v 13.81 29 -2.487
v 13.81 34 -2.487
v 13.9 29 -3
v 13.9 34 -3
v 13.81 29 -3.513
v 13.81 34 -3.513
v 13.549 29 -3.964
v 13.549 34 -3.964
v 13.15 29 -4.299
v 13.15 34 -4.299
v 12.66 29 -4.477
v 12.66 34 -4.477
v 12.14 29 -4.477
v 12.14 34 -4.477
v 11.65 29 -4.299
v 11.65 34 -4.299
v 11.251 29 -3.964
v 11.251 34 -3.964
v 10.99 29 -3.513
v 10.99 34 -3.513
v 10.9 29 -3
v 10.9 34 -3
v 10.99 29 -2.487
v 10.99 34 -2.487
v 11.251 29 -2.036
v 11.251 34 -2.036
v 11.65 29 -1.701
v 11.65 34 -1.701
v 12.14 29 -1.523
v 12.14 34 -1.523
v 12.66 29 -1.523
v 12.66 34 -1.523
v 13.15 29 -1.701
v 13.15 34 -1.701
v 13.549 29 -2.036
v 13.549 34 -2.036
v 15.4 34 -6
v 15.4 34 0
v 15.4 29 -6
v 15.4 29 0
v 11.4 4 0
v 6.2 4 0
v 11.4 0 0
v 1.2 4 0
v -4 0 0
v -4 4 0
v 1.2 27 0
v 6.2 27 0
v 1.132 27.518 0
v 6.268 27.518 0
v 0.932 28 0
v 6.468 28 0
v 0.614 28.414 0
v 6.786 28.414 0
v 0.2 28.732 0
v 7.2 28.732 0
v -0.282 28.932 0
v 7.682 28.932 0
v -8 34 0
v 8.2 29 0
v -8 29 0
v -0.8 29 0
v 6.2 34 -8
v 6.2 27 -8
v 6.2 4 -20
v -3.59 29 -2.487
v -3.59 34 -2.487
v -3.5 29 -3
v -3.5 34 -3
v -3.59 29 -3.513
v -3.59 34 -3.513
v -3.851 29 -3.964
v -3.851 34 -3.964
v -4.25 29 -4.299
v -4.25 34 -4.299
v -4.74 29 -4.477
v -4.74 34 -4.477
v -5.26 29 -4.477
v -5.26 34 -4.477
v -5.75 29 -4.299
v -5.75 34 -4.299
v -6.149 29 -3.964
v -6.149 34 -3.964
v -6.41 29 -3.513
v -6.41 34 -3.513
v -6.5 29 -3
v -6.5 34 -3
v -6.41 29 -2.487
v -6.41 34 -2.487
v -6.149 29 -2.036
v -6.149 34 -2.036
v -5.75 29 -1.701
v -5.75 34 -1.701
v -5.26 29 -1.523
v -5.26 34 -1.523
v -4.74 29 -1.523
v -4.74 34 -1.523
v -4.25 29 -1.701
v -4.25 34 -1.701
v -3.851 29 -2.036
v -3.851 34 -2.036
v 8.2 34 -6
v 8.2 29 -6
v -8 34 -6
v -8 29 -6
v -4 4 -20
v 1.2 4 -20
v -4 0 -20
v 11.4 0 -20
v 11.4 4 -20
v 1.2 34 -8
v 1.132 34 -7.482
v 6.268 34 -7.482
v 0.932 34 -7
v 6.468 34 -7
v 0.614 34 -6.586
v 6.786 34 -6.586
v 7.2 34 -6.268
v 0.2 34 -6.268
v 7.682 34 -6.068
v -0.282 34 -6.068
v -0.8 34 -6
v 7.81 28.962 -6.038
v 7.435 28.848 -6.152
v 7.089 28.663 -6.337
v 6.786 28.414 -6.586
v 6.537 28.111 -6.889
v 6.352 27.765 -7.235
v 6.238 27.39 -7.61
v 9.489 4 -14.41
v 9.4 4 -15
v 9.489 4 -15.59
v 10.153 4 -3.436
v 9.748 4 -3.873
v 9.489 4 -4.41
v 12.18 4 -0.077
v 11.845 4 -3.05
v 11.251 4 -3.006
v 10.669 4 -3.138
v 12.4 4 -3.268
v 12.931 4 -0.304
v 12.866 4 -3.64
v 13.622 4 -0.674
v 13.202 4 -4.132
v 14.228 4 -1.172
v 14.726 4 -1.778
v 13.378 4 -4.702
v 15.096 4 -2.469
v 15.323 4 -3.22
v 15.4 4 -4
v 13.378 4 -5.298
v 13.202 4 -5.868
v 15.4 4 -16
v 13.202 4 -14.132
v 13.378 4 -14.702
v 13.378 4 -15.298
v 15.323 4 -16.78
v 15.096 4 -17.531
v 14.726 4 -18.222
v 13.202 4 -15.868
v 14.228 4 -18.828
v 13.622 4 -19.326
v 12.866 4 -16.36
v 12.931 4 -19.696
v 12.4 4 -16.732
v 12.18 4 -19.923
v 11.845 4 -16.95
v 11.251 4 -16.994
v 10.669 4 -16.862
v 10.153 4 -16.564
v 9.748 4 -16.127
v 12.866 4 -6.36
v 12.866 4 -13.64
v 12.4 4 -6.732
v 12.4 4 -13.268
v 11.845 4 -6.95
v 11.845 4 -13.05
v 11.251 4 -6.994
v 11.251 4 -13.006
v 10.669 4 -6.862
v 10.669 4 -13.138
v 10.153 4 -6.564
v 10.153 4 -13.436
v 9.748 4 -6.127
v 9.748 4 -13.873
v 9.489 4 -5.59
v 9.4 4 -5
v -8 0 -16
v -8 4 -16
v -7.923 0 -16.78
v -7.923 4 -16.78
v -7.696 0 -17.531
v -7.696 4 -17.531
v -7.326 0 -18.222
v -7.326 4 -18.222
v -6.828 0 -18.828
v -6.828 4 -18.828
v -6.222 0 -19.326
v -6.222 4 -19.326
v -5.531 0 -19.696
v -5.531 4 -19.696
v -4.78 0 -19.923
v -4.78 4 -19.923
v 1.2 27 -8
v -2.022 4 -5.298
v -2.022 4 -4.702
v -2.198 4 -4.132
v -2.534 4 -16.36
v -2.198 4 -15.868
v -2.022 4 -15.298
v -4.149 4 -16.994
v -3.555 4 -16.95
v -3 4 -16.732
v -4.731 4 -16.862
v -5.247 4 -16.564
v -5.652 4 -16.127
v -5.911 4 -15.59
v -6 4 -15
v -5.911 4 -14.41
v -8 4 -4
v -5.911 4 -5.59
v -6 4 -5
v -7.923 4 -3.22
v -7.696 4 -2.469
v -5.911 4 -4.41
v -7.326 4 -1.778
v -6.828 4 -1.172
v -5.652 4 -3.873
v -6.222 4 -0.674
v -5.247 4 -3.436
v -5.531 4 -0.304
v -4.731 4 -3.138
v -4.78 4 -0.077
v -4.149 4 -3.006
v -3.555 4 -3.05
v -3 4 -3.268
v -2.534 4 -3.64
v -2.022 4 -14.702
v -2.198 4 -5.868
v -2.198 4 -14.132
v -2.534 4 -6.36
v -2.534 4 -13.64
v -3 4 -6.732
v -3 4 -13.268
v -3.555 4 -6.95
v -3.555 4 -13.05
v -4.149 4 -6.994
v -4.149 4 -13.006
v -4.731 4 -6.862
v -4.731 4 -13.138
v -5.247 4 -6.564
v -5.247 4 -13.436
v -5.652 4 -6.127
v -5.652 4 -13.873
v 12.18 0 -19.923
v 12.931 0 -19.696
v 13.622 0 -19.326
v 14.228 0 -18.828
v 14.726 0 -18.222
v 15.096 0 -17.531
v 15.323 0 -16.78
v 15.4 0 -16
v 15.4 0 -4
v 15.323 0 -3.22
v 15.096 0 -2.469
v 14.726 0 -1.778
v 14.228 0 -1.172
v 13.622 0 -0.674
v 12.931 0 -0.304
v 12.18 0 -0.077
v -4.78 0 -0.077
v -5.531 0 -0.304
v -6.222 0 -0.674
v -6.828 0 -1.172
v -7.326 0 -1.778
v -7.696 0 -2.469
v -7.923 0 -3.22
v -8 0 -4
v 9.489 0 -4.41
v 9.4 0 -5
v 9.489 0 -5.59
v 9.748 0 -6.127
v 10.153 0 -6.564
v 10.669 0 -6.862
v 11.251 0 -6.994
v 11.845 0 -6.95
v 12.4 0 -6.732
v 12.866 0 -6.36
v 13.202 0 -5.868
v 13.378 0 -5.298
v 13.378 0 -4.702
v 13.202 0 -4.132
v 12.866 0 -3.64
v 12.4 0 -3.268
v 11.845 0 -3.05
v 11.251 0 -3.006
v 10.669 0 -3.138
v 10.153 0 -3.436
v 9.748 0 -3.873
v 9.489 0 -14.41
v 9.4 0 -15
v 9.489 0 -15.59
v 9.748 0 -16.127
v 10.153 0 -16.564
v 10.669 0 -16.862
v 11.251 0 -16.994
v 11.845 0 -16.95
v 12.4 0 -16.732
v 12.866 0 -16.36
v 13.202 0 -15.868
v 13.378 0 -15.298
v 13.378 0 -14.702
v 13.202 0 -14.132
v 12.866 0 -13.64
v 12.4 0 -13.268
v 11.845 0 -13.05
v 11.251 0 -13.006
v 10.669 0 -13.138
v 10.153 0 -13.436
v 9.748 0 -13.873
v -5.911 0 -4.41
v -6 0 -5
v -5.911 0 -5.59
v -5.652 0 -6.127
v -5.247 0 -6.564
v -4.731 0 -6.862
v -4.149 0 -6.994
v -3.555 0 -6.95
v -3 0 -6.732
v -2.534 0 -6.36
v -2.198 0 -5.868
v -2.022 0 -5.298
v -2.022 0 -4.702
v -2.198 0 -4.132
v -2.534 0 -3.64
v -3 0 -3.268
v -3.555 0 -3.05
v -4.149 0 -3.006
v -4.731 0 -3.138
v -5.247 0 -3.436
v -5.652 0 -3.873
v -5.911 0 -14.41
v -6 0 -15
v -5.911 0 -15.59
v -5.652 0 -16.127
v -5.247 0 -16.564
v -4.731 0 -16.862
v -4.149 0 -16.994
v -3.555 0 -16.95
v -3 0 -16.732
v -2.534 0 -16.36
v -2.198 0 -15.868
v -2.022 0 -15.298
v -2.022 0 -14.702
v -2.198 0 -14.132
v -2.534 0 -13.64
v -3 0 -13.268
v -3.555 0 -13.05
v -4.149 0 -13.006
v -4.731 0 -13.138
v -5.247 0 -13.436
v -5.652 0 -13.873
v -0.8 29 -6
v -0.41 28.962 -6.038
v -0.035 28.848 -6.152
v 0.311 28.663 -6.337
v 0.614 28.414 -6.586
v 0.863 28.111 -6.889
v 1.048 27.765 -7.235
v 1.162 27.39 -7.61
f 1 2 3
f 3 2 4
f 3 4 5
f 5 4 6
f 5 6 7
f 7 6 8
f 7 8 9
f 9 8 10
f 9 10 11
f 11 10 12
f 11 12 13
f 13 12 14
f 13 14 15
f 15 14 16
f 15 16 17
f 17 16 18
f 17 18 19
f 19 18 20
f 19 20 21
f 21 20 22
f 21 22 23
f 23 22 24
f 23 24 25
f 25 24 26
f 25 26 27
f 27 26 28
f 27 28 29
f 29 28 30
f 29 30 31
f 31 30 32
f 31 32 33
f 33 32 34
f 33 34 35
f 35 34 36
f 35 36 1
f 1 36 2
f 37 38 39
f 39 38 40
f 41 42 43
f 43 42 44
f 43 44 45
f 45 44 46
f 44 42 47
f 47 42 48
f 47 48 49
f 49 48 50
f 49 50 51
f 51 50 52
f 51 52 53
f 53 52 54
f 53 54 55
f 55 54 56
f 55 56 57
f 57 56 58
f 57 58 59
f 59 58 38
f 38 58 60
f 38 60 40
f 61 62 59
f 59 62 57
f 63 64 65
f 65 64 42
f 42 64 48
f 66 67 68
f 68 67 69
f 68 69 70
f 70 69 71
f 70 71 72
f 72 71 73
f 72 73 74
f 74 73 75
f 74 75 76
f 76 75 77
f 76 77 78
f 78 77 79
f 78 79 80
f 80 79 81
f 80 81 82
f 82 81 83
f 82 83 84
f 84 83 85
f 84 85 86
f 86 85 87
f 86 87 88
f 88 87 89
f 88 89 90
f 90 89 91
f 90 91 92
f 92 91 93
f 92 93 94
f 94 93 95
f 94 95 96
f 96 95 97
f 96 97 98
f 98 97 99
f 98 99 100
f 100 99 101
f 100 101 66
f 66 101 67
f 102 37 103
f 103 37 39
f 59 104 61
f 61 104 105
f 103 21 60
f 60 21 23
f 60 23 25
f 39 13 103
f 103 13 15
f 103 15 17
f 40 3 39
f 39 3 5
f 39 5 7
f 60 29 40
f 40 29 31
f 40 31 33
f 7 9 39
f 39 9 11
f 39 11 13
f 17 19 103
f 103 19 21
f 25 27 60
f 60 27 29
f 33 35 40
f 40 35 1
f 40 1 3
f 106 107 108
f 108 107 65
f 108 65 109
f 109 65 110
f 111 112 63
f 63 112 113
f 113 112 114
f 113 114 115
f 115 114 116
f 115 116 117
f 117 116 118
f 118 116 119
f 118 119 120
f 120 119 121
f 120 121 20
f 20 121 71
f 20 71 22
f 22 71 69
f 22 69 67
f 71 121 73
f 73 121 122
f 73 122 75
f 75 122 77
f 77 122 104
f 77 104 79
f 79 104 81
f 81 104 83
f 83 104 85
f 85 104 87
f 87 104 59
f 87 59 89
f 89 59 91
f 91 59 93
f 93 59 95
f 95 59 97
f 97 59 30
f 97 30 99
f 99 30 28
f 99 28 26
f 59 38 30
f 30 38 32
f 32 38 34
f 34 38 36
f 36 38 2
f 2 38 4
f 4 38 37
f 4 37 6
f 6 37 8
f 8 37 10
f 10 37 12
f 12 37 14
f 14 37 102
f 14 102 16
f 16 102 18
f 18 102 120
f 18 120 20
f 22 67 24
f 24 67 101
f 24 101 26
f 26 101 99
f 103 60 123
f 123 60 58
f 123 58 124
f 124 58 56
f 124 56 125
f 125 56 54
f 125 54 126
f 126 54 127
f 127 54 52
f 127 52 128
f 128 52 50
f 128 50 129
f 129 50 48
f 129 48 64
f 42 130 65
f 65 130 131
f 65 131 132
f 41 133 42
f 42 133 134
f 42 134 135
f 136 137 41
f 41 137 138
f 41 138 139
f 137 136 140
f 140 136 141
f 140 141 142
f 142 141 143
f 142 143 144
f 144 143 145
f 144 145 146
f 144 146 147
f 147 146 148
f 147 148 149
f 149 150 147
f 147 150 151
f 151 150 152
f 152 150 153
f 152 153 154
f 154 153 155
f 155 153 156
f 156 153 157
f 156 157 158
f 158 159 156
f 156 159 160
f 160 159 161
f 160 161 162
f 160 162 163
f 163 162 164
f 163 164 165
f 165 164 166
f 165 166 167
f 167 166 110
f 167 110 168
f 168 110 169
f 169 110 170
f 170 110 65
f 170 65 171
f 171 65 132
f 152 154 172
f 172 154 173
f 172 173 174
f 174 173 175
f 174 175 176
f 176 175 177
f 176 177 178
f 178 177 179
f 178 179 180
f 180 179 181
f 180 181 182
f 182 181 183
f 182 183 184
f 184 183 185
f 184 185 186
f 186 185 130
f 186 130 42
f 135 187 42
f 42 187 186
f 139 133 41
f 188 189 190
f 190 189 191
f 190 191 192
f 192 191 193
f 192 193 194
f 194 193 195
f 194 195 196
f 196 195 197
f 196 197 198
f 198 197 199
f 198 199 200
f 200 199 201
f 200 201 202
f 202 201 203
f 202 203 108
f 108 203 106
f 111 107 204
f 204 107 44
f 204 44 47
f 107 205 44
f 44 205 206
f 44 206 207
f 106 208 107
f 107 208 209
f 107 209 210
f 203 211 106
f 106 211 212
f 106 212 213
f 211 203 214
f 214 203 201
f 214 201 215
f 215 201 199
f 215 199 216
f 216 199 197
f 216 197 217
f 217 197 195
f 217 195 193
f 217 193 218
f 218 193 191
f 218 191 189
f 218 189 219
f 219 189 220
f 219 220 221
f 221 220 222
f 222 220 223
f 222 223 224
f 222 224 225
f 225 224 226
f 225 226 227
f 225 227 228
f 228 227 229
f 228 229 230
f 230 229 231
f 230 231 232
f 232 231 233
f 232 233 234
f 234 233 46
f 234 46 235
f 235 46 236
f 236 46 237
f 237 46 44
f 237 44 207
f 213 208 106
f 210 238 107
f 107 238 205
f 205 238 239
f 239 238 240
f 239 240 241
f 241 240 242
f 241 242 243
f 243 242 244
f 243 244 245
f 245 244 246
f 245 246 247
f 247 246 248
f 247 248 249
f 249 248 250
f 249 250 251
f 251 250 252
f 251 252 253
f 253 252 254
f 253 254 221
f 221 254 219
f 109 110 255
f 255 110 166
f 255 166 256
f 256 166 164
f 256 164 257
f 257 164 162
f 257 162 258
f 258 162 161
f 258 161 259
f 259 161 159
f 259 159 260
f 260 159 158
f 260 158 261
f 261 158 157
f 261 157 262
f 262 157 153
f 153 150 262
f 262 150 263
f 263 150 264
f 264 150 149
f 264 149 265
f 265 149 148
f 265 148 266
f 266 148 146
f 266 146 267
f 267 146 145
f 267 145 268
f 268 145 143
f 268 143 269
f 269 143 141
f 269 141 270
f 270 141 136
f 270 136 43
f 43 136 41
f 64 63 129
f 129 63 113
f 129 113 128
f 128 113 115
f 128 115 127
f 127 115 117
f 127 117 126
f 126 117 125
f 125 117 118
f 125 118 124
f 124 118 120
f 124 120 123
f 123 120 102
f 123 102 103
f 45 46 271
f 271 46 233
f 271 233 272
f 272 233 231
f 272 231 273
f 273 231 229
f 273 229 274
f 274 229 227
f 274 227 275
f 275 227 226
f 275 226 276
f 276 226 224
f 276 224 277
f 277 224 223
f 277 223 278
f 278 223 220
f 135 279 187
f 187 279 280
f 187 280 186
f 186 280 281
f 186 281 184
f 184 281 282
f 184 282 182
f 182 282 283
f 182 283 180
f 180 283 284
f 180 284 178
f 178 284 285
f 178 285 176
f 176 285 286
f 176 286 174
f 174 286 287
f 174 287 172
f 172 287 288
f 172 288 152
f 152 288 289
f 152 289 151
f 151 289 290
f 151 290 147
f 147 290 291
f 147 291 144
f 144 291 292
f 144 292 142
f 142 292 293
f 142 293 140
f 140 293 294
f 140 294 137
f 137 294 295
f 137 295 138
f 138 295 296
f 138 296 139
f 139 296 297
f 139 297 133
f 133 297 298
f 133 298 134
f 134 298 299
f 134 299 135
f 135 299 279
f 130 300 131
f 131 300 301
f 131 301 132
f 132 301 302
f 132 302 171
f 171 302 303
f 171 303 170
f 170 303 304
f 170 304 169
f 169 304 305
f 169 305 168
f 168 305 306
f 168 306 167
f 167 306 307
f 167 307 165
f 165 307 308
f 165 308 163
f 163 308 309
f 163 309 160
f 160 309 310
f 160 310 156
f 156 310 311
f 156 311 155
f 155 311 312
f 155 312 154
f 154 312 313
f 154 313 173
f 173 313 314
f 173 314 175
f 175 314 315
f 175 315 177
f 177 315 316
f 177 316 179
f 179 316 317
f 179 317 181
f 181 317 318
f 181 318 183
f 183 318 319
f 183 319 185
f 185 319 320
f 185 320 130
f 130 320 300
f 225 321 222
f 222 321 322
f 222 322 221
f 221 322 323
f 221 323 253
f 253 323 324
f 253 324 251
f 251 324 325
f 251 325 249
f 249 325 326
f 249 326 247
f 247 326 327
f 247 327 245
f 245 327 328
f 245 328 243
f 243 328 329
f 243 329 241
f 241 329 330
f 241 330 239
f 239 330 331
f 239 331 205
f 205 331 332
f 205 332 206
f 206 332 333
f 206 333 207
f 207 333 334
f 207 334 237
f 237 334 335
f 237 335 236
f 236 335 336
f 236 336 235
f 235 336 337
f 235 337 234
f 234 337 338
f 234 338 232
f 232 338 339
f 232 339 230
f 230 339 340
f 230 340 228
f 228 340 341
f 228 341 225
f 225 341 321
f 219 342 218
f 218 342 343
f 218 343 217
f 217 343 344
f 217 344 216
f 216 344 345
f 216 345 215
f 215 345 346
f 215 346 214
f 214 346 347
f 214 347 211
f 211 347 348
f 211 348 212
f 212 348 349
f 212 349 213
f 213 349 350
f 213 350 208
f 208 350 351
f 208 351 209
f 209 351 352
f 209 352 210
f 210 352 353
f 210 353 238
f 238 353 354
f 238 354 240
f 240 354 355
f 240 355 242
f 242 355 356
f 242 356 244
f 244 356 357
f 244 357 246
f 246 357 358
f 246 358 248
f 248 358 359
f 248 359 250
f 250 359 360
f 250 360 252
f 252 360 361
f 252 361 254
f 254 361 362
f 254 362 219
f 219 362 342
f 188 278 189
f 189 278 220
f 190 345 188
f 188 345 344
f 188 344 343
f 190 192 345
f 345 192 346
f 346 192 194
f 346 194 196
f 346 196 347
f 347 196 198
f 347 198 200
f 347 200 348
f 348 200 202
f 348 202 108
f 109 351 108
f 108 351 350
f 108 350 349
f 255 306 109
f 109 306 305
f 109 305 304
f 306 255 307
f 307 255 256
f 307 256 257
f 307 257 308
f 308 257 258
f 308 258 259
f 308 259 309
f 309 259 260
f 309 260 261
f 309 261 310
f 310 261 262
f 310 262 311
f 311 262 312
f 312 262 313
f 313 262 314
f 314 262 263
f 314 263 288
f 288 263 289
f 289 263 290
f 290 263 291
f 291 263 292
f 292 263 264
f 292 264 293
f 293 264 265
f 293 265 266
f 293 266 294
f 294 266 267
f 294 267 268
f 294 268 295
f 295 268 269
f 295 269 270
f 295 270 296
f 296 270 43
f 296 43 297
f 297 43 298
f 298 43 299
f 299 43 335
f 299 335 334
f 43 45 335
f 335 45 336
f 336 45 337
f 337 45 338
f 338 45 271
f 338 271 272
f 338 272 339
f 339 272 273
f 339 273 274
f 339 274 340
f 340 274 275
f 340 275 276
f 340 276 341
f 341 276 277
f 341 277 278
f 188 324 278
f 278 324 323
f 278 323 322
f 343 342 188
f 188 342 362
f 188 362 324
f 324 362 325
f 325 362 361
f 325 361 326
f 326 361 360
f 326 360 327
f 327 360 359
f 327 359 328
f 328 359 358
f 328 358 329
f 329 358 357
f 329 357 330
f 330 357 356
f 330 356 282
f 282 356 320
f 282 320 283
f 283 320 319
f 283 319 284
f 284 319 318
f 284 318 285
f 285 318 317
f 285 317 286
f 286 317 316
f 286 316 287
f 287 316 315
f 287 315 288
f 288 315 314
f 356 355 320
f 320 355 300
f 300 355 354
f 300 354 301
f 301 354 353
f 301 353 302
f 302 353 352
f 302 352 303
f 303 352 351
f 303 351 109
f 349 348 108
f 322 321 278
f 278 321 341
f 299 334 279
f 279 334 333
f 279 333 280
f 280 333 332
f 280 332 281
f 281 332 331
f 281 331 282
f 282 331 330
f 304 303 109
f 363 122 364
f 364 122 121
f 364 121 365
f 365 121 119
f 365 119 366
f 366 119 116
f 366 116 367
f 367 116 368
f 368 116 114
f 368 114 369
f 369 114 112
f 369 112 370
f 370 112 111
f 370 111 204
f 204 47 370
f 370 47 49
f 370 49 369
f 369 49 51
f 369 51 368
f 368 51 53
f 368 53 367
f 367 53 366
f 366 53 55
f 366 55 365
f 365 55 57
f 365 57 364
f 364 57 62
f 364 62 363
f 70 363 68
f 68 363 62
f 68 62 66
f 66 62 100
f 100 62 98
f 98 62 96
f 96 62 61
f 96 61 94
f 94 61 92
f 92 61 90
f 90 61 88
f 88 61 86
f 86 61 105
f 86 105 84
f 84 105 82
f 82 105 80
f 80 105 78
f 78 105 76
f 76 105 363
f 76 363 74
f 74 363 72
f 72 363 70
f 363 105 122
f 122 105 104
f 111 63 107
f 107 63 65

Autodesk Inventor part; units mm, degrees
ref_plane "YZ Plane" through (0, 0, 0) normal (1, 0, 0) x (0, 1, 0)
ref_plane "XZ Plane" through (0, 0, 0) normal (0, 1, 0) x (-1, 0, 0)
ref_plane "XY Plane" through (0, 0, 0) normal (0, 0, 1) x (1, 0, 0)
sketch "Sketch1" plane through (0, 0, 0) normal (0, 1, 0) x (-1, 0, 0)
  line L0 (0, 0) -> (8, 0)
  line L1 (8, 0) -> (8, -20)
  line L2 (8, -20) -> (0, -20)
  line L3 (0, -20) -> (0, 0)
  line L4 (0, 0) -> (-3.7, 0)
  line L5 (-3.7, 0) -> (-3.7, -20)
  line L6 (-3.7, -20) -> (0, -20)
  line L7 (0, -20) -> (0, 0)
  line L8 (8, 0) -> (4, 0)
  line L9 (4, 0) -> (4, -5)
  line L10 (4, -5) -> (8, -5)
  line L11 (8, -5) -> (8, 0)
  line L12 (4, -5) -> (4, -15)
  circle A0 centre (4, -5) radius 2
  circle A1 centre (4, -15) radius 2
  line L13 (-7.4, 0) -> (-15.4, 0)
  line L14 (-15.4, 0) -> (-15.4, -20)
  line L15 (-15.4, -20) -> (-7.4, -20)
  line L16 (-7.4, -20) -> (-7.4, 0)
  line L17 (-7.4, 0) -> (-3.7, 0)
  line L18 (-3.7, -20) -> (-7.4, -20)
  line L19 (-7.4, -20) -> (-7.4, 0)
  line L20 (-15.4, 0) -> (-11.4, 0)
  line L21 (-11.4, 0) -> (-11.4, -5)
  line L22 (-11.4, -5) -> (-15.4, -5)
  line L23 (-15.4, -5) -> (-15.4, 0)
  line L24 (-11.4, -5) -> (-11.4, -15)
  circle A2 centre (-11.4, -5) radius 2
  circle A3 centre (-11.4, -15) radius 2
  dimension "d0" = 8
  dimension "d1" = 20
  dimension "d2" = 3.7
  dimension "d3" = 4
  dimension "d4" = 5
  dimension "d5" = 10
  dimension "d6" = 4
  dimension "d7" = 4
extrude "Extrusion1" add sketch "Sketch1" along normal blind 4 contours L0 L9 A0 L10 L1 L2 L3 | L3 L6 L5 L4 | L0 L1 L10 A0 L9 | L5 L18 L16 L17 | L16 L15 L14 L22 A2 L21 L13 | L21 A2 L22 L14 L13
fillet "Fillet1" radius 4 4 edges at (-8, 2, 0) (15.4, 2, 0) (15.4, 2, -20) (-8, 2, -20)
sketch "Sketch2" plane through (0, 4, 0) normal (0, 1, 0) x (1, 0, 0)
  line L0 (-8, 16) -> (-8, 4) projected
  line L1 (-8, 10) -> (15.4, 10)
  line L2 (15.4, 4) -> (15.4, 16) projected
  line L3 (11.4, 20) -> (-4, 20) projected
  line L4 (1.2, 0) -> (6.2, 0)
  line L5 (6.2, 0) -> (6.2, 20)
  line L6 (6.2, 20) -> (1.2, 20)
  line L7 (1.2, 20) -> (1.2, 0)
  line L8 (1.2, 0) -> (6.2, 20) construction
  line L9 (6.2, 0) -> (1.2, 20) construction
  point P0 (0, 0)
  point P1 (3.7, 10)
  point P2 (1.2, 20)
  dimension "d11" = 5
extrude "Extrusion2" add sketch "Sketch2" along normal blind 30
sketch "Sketch3" plane through (0, 34, 0) normal (0, 1, 0) x (1, 0, 0)
  line L0 (6.2, 20) -> (6.2, 0) projected
  line L1 (1.2, 0) -> (1.2, 20) projected
  line L2 (6.2, 0) -> (1.2, 0)
  line L3 (1.2, 0) -> (1.2, 6)
  line L4 (1.2, 6) -> (6.2, 6)
  line L5 (6.2, 6) -> (6.2, 0)
  line L6 (1.2, 6) -> (-8, 6)
  line L7 (-8, 6) -> (-8, 0)
  line L8 (-8, 0) -> (1.2, 0)
  line L9 (1.2, 0) -> (1.2, 6)
  line L10 (6.2, 6) -> (15.4, 6)
  line L11 (15.4, 6) -> (15.4, 0)
  line L12 (15.4, 0) -> (6.2, 0)
  line L13 (6.2, 0) -> (6.2, 6)
  line L14 (-8, 0) -> (-5, 0)
  line L15 (-5, 0) -> (-5, 3)
  line L16 (-5, 3) -> (-8, 3)
  line L17 (-8, 3) -> (-8, 0)
  line L18 (15.4, 0) -> (12.4, 0)
  line L19 (12.4, 0) -> (12.4, 3)
  line L20 (12.4, 3) -> (15.4, 3)
  line L21 (15.4, 3) -> (15.4, 0)
  circle A0 centre (-5, 3) radius 1.5
  circle A1 centre (12.4, 3) radius 1.5
  point P0 (0, 0)
  dimension "d14" = 6
  dimension "d15" = 6
  dimension "d16" = 6
  dimension "d17" = 3
  dimension "d18" = 3
  dimension "d19" = 3
  dimension "d20" = 3
  dimension "d21" = 3
  dimension "d22" = 3
extrude "Extrusion3" add sketch "Sketch3" against normal blind 5 contours L10 L11 L20 A1 L19 L12 L0 | L1 L8 L15 A0 L16 L7 L6 | L19 A1 L20 L11 L12 | L8 L7 L16 A0 L15
fillet "Fillet2" radius 2 4 edges at (1.2, 31.5, -6) (6.2, 31.5, -6) (6.2, 29, -3) (1.2, 29, -3)
chamfer "Chamfer1" distance 12 distance2 30 1 edges at (3.7, 34, -20) measured on face at (2.8667, 34, -16)
properties part number "rigid_support3"
